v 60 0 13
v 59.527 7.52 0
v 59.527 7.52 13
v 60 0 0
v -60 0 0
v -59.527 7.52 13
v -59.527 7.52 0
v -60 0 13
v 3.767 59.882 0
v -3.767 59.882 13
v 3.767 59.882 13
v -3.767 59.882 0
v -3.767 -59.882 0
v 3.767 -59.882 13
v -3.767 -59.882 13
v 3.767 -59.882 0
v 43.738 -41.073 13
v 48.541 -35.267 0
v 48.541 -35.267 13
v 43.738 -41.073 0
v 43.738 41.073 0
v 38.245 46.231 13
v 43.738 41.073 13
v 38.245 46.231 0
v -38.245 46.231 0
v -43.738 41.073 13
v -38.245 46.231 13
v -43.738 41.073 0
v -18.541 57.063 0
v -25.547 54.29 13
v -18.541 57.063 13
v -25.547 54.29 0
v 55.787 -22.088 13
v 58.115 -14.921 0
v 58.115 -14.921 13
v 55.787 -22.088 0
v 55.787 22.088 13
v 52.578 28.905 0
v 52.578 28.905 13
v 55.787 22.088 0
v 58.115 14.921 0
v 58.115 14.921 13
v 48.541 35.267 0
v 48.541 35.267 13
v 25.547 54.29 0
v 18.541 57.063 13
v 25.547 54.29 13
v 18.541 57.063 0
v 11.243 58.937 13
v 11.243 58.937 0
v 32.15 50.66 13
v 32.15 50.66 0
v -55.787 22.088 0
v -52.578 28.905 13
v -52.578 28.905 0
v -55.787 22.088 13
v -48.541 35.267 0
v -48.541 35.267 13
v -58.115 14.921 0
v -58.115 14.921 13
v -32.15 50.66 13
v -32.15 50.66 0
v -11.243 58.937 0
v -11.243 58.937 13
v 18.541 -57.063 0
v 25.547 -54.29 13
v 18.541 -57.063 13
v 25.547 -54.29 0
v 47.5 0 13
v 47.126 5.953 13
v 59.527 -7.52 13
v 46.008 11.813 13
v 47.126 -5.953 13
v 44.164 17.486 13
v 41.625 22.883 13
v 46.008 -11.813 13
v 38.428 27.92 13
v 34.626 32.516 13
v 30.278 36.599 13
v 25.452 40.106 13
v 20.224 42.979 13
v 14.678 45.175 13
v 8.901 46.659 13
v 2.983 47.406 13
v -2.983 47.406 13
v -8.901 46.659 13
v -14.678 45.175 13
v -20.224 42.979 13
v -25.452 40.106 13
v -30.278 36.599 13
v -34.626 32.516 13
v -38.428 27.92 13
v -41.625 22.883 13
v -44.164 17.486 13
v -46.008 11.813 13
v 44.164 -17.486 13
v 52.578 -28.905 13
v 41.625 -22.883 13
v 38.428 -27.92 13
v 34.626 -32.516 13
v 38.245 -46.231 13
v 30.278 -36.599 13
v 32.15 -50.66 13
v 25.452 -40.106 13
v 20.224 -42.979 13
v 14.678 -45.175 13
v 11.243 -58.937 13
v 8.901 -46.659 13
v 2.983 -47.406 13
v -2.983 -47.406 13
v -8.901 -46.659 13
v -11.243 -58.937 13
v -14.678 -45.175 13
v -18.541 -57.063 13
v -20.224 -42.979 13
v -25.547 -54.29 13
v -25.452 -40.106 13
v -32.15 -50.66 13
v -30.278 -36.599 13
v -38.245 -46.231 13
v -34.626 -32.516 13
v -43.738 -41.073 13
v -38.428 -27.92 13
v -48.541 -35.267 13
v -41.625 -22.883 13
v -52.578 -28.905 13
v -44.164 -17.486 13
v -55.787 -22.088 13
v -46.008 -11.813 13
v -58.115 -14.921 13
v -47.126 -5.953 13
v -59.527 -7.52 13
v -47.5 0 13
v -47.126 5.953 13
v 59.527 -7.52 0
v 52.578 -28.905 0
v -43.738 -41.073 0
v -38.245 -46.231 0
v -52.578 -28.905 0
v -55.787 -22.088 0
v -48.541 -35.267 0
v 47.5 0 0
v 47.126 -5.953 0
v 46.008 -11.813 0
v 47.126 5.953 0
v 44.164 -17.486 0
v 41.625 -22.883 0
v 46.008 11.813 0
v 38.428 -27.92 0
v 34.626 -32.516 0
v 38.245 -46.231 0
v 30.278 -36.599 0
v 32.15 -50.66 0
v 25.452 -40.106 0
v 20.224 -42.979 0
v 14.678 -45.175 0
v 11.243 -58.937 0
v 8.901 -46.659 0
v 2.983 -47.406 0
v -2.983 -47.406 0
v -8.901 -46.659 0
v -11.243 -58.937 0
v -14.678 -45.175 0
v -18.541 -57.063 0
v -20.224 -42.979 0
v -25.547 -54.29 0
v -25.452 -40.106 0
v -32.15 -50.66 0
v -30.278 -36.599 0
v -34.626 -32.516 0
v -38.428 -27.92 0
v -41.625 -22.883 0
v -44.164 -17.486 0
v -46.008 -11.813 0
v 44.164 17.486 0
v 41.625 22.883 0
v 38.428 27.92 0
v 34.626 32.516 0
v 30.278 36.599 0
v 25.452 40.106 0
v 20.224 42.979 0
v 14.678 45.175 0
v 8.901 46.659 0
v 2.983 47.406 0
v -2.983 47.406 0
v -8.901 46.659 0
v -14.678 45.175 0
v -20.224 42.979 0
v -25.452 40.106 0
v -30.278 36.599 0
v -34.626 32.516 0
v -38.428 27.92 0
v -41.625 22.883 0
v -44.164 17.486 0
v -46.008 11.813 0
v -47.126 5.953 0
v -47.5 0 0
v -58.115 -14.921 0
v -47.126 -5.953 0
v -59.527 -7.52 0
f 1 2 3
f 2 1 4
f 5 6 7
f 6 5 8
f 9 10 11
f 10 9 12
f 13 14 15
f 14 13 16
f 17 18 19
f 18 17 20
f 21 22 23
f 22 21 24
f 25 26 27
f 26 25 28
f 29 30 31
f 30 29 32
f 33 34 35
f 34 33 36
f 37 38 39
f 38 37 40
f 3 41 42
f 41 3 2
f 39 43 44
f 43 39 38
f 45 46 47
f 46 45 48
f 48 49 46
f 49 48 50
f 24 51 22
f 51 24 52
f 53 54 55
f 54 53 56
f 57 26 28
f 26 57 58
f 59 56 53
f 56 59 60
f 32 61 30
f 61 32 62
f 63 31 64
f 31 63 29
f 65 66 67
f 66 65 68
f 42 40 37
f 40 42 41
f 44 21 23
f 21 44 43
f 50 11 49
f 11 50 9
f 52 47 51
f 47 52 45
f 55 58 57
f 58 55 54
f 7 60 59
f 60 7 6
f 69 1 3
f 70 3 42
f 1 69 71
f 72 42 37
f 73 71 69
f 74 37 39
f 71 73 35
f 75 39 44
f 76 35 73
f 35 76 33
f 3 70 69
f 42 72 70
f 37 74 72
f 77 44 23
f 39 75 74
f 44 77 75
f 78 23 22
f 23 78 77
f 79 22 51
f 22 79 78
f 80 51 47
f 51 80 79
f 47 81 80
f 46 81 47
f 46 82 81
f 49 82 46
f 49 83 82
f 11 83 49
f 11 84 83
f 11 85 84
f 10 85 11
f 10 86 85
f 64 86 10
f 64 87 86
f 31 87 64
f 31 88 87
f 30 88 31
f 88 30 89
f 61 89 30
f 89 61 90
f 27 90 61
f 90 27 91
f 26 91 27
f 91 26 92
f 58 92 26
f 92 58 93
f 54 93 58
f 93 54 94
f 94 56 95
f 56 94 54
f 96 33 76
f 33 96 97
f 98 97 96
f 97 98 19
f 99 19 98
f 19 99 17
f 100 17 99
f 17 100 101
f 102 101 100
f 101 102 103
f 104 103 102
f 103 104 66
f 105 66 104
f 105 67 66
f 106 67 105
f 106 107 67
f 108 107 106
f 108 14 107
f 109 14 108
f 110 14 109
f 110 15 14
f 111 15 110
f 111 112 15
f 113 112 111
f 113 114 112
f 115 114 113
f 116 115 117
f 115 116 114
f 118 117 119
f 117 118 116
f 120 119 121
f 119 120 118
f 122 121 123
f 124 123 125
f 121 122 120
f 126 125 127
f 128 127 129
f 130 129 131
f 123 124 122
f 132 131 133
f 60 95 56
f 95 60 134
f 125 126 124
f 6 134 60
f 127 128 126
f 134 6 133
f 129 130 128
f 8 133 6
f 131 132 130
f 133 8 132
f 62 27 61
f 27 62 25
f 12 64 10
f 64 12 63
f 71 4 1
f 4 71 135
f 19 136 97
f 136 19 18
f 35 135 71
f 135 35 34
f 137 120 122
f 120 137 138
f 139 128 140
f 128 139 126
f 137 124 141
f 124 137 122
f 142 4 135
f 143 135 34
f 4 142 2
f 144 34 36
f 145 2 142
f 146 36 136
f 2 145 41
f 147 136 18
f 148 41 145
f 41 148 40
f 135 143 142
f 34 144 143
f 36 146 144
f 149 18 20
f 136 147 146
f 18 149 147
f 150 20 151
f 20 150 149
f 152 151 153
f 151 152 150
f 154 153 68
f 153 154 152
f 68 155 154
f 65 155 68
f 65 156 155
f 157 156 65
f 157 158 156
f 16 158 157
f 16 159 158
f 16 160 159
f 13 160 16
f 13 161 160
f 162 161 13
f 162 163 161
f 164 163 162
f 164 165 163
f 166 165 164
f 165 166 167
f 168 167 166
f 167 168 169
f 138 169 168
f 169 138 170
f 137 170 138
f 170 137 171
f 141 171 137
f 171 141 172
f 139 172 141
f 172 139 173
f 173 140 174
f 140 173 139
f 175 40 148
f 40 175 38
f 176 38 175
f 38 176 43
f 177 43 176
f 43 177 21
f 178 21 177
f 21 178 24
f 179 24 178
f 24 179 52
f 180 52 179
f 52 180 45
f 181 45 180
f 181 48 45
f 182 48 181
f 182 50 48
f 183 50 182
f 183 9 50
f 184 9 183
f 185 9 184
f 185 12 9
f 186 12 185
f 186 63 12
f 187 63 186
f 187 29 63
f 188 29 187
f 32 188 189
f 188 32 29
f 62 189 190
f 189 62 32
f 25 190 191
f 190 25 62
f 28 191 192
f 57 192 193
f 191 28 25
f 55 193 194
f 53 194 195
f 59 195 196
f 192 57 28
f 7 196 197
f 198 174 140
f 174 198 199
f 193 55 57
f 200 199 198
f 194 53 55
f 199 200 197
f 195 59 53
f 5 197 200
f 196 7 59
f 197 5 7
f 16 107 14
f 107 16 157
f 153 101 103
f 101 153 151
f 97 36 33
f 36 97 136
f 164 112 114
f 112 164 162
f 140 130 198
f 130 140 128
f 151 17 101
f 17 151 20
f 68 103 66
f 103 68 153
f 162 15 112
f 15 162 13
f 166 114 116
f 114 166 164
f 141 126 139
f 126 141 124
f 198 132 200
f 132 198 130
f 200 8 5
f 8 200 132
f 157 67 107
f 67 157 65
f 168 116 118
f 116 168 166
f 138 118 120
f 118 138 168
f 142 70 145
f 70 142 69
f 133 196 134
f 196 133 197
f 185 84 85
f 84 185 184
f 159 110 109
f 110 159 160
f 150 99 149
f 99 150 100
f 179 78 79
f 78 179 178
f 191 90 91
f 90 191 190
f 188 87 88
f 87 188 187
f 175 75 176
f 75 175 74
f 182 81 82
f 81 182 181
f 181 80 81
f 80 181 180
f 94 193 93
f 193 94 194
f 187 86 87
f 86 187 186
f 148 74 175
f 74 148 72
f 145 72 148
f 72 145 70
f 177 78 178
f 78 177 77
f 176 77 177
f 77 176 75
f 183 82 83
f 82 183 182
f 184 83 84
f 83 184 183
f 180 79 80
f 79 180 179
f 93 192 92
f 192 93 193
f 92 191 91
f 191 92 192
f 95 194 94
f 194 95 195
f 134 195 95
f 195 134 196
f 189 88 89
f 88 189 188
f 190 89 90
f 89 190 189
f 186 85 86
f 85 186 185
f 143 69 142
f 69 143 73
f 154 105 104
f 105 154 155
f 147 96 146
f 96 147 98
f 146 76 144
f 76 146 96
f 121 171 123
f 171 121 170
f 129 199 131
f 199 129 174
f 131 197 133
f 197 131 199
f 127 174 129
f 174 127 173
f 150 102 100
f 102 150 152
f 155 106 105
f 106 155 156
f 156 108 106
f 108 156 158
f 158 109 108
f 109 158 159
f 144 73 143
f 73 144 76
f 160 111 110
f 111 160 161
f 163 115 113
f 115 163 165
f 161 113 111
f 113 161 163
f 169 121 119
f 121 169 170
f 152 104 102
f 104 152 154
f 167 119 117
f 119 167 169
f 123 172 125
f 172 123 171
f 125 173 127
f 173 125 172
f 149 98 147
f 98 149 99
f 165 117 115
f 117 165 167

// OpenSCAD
$fn = 50;


difference() {
	union() {
		cylinder(h = 13, r = 60.0000000000);
	}
	union() {
		cylinder(h = 13, r = 47.5000000000);
	}
}
